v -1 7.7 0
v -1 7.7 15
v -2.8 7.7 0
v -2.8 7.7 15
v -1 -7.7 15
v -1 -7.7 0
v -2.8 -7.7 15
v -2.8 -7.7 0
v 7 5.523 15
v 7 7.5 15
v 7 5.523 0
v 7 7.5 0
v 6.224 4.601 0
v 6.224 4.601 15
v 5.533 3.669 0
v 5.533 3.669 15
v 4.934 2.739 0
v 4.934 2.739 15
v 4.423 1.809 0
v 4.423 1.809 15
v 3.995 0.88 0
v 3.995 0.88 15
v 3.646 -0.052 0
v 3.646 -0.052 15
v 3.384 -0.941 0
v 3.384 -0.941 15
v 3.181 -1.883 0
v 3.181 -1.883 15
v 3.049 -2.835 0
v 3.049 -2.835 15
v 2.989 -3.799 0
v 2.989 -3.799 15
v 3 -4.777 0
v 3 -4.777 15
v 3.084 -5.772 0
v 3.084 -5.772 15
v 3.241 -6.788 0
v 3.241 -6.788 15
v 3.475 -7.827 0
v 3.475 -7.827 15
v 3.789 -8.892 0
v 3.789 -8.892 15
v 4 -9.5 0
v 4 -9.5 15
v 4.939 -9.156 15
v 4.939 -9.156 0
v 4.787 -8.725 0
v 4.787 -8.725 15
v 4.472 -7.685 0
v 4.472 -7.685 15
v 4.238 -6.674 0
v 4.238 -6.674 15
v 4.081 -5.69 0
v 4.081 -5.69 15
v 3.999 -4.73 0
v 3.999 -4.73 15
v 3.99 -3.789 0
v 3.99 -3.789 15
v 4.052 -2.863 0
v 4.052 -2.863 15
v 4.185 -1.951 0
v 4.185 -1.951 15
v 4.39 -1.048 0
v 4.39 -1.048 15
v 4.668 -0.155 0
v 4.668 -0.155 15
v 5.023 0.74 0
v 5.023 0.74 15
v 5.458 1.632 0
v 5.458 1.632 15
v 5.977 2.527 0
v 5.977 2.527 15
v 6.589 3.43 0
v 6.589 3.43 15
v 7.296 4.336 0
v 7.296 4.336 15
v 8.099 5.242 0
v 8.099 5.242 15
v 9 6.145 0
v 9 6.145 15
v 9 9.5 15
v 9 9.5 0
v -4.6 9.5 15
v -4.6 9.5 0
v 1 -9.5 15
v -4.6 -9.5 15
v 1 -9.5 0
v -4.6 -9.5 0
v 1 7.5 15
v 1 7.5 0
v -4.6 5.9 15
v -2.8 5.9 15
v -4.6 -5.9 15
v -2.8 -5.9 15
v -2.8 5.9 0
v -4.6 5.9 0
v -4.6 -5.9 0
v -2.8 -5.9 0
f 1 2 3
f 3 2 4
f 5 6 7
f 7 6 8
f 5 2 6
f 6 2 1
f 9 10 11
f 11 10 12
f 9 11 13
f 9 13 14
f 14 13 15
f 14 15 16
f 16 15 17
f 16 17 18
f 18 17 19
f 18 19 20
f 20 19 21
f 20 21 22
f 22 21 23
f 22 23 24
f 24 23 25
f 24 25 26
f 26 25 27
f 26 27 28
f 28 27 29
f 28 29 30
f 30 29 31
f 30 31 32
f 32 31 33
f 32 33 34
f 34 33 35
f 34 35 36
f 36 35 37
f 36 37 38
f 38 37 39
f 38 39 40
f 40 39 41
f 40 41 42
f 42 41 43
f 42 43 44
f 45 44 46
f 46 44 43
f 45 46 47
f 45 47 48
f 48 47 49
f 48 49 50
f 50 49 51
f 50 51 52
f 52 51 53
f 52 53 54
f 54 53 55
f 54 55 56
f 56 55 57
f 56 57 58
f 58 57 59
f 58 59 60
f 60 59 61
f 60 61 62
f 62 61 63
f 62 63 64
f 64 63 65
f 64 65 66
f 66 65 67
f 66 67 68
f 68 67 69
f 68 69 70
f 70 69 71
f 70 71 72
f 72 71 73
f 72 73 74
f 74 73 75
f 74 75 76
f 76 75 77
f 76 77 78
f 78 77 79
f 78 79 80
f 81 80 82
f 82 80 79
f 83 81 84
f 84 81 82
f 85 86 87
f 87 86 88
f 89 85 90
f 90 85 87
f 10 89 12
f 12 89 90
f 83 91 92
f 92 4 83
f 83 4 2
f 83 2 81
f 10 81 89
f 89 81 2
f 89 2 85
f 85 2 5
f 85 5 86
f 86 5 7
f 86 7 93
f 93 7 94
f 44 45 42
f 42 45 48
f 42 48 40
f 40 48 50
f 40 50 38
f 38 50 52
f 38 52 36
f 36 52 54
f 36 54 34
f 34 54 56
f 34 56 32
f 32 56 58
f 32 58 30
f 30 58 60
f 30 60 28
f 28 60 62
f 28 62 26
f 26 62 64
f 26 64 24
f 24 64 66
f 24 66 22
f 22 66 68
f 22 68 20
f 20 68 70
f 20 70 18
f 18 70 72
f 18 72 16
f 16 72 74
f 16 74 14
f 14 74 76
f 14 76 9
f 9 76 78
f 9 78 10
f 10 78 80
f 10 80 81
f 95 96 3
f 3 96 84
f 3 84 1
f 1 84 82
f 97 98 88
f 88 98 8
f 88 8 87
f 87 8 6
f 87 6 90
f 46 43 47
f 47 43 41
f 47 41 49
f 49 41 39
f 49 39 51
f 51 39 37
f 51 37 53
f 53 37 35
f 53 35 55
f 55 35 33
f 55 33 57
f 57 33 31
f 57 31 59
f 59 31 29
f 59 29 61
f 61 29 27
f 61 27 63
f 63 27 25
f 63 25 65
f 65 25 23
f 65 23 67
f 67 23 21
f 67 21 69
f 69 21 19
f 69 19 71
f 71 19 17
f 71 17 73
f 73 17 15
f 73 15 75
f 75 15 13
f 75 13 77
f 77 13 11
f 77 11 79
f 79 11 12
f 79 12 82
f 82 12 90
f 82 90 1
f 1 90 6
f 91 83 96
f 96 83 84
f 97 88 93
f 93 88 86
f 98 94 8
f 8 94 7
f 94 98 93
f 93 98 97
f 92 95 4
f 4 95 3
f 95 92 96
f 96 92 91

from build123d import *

# Parameters (mm, degrees)
AUFSATZ_LINEAR_AUSTRAGEN1_DEPTH = 15
SKIZZE8_W                       = 15
SKIZZE8_H                       = 1.8
AUFSATZ_LINEAR_AUSTRAGEN2_DEPTH = 3.6
SKIZZE9_W                       = 1.8
SKIZZE9_H                       = 15
AUFSATZ_LINEAR_AUSTRAGEN3_DEPTH = 1.8
SKIZZE10_W                      = 1.8
SKIZZE10_H                      = 15
AUFSATZ_LINEAR_AUSTRAGEN4_DEPTH = 1.8


# Read off the part's stored shape, not the designer's step: Aufsatz-Linear austragen1
with BuildPart() as part:
    # Aufsatz-Linear austragen1 outline → Aufsatz-Linear austragen1 (new body)
    with BuildSketch(Plane.XY):
        with BuildLine():
            Line((7, 7.5), (7, 5.522993755))
            add(Edge.make_bspline(
                [(7, 5.522993755), (0.965861159, -1.223721572), (4, -9.5)],
                knots=[0.129703712, 0.129703712, 0.129703712, 1, 1, 1], degree=2))
            Line((4, -9.5), (4.938894523, -9.155795009))
            add(Edge.make_bspline(
                [(9, 6.145084082), (8.894106899, 6.044673778), (8.472209731, 5.637376992), (7.500876339, 4.623469608), (6.267154764, 3.067786271), (5.159309564, 1.168794415), (4.408096908, -0.769290789), (4.005150376, -2.755259304), (3.945419318, -4.803083613), (4.18652921, -6.57746866), (4.554595844, -8.031875726), (4.803987208, -8.787813624), (4.938894523, -9.155795009)],
                knots=[0.041945828, 0.041945828, 0.041945828, 0.041945828, 0.0625, 0.125, 0.25, 0.375, 0.5, 0.625, 0.75, 0.875, 0.9375, 1, 1, 1, 1], degree=3))
            Line((9, 6.145084082), (9, 9.5))
            Line((9, 9.5), (-1, 9.5))
            Line((-1, 9.5), (-1, -9.5))
            Line((-1, -9.5), (1, -9.5))
            Line((1, -9.5), (1, 7.5))
            Line((1, 7.5), (7, 7.5))
        make_face()
    extrude(amount=AUFSATZ_LINEAR_AUSTRAGEN1_DEPTH)

    # Skizze8 → Aufsatz-Linear austragen2 (add)
    with BuildSketch(Plane.ZY.offset(1)):
        with Locations((7.5, 8.6)):
            Rectangle(SKIZZE8_W, SKIZZE8_H)
        with Locations((7.5, -8.6)):
            Rectangle(SKIZZE8_W, SKIZZE8_H)
    extrude(amount=AUFSATZ_LINEAR_AUSTRAGEN2_DEPTH)

    # Skizze9 → Aufsatz-Linear austragen3 (add)
    with BuildSketch(Plane(origin=(0, -7.7, 0), x_dir=(1, 0, 0), z_dir=(0, 1, 0))):
        with Locations((-3.7, -7.5)):
            Rectangle(SKIZZE9_W, SKIZZE9_H)
    extrude(amount=AUFSATZ_LINEAR_AUSTRAGEN3_DEPTH)

    # Skizze10 → Aufsatz-Linear austragen4 (add)
    with BuildSketch(Plane.XZ.offset(-7.7)):
        with Locations((-3.7, 7.5)):
            Rectangle(SKIZZE10_W, SKIZZE10_H)
    extrude(amount=AUFSATZ_LINEAR_AUSTRAGEN4_DEPTH)


solid = part.part
